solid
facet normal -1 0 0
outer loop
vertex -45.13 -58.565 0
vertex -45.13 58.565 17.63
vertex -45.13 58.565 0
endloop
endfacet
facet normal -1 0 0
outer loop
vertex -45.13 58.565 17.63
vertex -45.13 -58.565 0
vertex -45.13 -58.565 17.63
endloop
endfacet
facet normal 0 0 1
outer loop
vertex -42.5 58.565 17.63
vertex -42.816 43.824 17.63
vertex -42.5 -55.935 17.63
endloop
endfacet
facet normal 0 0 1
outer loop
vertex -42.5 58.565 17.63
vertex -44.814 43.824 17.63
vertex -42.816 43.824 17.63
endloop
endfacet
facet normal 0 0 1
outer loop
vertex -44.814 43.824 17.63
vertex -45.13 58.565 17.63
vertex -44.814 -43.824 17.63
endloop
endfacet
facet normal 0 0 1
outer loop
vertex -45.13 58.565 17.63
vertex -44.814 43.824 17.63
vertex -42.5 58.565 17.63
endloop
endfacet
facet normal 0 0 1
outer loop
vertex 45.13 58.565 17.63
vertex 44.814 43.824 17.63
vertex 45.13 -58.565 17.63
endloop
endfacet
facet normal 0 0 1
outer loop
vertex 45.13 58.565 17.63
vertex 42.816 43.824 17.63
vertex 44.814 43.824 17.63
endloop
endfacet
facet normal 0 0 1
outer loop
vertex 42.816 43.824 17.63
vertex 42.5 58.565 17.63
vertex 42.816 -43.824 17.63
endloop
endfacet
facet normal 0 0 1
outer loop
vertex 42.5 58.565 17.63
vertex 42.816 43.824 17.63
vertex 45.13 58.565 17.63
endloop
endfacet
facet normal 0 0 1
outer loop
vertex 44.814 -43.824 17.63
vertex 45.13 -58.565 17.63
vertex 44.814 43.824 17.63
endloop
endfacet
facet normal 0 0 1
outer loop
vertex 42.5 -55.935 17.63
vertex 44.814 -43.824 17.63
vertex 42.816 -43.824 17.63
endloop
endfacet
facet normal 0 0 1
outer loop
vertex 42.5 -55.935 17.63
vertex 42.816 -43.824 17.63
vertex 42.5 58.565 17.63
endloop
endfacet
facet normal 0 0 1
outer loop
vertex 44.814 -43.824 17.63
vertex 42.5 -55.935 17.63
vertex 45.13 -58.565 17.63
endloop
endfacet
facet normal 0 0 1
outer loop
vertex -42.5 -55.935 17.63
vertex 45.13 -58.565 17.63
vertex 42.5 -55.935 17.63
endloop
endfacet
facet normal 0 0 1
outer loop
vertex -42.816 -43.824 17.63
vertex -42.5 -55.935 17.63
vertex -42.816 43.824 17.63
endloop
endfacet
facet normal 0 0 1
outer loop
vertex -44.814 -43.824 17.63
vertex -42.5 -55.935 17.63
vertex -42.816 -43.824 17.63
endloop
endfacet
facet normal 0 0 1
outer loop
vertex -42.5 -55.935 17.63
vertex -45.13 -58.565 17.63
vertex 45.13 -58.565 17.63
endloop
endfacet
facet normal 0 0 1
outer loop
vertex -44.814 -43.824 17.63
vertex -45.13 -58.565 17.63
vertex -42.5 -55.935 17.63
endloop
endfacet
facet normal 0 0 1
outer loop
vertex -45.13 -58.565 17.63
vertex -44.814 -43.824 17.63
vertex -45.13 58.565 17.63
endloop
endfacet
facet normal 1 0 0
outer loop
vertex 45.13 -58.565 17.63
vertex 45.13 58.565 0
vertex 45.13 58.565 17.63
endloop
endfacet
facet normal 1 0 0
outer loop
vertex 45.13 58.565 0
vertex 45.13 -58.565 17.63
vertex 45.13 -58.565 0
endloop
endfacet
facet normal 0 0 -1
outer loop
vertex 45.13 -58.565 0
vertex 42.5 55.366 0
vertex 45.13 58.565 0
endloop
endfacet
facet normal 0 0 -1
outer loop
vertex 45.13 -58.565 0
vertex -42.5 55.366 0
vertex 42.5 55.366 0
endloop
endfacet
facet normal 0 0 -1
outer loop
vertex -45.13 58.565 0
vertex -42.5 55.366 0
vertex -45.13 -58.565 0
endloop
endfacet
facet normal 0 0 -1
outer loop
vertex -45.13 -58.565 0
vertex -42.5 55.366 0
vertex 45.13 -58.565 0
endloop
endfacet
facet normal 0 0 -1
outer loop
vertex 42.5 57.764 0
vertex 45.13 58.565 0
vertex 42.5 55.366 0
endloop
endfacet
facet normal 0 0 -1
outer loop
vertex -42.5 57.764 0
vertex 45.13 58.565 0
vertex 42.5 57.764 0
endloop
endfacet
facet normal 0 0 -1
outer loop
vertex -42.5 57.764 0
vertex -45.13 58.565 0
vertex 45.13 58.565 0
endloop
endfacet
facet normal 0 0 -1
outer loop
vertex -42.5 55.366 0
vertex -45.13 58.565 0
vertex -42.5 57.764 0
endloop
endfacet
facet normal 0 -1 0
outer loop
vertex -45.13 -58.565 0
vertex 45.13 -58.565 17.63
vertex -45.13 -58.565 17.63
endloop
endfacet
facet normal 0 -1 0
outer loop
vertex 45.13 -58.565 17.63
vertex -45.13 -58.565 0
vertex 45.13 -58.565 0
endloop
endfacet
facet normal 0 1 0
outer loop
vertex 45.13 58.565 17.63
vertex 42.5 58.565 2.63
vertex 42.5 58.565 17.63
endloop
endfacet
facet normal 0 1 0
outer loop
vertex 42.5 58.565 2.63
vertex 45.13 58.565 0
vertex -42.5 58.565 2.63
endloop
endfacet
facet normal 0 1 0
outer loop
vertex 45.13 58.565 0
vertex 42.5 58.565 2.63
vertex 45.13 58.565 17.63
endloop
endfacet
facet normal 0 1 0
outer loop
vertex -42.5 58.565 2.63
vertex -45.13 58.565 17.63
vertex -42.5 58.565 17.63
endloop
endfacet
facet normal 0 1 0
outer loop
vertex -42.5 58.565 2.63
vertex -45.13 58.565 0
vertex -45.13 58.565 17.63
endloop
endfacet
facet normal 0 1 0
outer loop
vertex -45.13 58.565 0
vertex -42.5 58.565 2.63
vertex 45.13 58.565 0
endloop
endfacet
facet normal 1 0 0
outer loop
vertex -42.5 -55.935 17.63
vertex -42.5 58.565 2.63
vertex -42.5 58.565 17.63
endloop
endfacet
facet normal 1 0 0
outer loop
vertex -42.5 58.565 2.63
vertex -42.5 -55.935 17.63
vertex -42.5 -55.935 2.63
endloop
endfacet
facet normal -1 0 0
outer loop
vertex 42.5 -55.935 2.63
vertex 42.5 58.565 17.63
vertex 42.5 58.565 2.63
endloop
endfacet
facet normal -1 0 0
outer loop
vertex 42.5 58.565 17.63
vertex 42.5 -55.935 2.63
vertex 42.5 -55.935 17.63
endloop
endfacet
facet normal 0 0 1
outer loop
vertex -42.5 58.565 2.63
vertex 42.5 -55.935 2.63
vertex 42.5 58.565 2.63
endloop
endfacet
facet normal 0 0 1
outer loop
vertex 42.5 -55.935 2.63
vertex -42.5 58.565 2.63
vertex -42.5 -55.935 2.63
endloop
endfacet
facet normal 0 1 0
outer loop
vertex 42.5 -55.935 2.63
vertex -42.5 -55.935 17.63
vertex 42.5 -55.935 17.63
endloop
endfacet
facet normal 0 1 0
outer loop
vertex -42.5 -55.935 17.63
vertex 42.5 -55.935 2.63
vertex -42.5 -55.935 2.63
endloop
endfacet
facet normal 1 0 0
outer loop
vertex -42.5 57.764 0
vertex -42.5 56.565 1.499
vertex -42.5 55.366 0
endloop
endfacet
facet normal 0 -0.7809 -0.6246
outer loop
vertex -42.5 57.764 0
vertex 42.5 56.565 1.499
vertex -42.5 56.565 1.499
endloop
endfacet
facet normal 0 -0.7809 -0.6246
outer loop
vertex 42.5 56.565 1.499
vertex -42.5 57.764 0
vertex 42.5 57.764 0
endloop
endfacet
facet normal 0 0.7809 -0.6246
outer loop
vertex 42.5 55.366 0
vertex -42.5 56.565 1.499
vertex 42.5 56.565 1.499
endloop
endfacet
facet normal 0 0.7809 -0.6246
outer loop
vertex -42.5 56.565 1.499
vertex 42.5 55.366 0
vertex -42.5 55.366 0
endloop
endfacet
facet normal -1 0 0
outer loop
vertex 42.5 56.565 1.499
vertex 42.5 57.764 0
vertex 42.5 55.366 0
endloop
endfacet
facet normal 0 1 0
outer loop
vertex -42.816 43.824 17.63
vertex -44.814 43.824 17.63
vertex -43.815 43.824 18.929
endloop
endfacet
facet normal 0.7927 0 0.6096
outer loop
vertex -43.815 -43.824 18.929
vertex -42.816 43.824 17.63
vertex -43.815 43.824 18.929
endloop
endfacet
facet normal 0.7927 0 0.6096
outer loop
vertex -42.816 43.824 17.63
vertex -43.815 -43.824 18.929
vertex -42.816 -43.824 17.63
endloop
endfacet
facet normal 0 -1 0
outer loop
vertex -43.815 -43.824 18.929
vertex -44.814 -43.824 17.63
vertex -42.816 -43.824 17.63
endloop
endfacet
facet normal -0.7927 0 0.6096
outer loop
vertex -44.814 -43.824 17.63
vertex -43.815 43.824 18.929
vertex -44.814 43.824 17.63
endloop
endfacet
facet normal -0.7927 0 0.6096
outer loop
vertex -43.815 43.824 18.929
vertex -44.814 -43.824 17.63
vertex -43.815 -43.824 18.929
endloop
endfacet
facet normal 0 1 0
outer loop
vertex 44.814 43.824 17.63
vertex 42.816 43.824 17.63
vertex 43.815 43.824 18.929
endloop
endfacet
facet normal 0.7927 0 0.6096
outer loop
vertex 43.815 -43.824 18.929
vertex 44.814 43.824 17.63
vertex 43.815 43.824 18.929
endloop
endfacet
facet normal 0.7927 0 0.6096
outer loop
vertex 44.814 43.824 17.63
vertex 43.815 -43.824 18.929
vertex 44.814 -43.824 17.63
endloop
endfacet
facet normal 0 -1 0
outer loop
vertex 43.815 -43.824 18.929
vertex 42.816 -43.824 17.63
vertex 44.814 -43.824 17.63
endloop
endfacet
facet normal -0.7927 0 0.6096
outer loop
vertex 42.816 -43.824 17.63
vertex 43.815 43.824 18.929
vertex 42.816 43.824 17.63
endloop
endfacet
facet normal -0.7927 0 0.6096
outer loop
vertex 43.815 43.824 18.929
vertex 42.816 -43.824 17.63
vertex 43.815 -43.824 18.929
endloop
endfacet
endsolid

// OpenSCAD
container_width = 85;
container_height = 114.5;
container_depth = 30;

frame_base = 2.63;
frame_bottom_size = 2.63;
frame_side_size = 2.63;

width = container_width + frame_side_size * 2;
depth = container_height + frame_bottom_size;
height = container_depth / 2.0 + frame_base;

spacing_other_extend = 1.2;
spacing_keep = 4.5;
spacing_depth_offset = -0.5;

tip_size = 1.2;
tip_height = 1.5;
tip_extrude_size = depth * 0.75;

close_tip_offset = 2.0;

module tip(tip_size_difference = 0.0, tip_height_difference = 0.0, size_difference = 0.0, tip_extrude = tip_extrude_size) {
  rotate([90, 0, 0])
    linear_extrude(height = tip_extrude - size_difference, center=true) {
      polygon(points=[
        [-tip_size + tip_size_difference, 0],
        [0, tip_height - tip_height_difference],
        [tip_size - tip_size_difference, 0]
      ]);
    };
}

module keep_hole() {
  cube([width / 2.0 - spacing_keep, depth / 2.0 - spacing_keep, height * 2], center = true);
}

color(c = [0.6, 0.6, 0.6])
  render()
  translate([0, 0, height / 2.0])
  union() {  
    difference() {
      translate([0, 0, 0])
        cube([width, depth, height], center = true);

      translate([0, 0, frame_base])
        cube([width - frame_side_size * 2, depth - frame_side_size * 2, height], center = true);

      translate([0, frame_bottom_size / 2.0 + 0.01, frame_base])
        cube([width - frame_side_size * 2, depth - frame_bottom_size, height], center = true);

      translate([0, depth / 2.0 - close_tip_offset, -height / 2.0 - 0.001])
        rotate([0, 0, 90])
        tip(tip_extrude = width - frame_side_size * 2);

    };

    translate([-width / 2.0 + frame_side_size / 2.0, 0, height / 2.0 - 0.001])
      tip(tip_size_difference = 0.2, tip_height_difference = 0.2, size_difference = 0.2);

    translate([width / 2.0 - frame_side_size / 2.0, 0, height / 2.0 - 0.001])
      tip(tip_size_difference = 0.2, tip_height_difference = 0.2, size_difference = 0.2);
  };
